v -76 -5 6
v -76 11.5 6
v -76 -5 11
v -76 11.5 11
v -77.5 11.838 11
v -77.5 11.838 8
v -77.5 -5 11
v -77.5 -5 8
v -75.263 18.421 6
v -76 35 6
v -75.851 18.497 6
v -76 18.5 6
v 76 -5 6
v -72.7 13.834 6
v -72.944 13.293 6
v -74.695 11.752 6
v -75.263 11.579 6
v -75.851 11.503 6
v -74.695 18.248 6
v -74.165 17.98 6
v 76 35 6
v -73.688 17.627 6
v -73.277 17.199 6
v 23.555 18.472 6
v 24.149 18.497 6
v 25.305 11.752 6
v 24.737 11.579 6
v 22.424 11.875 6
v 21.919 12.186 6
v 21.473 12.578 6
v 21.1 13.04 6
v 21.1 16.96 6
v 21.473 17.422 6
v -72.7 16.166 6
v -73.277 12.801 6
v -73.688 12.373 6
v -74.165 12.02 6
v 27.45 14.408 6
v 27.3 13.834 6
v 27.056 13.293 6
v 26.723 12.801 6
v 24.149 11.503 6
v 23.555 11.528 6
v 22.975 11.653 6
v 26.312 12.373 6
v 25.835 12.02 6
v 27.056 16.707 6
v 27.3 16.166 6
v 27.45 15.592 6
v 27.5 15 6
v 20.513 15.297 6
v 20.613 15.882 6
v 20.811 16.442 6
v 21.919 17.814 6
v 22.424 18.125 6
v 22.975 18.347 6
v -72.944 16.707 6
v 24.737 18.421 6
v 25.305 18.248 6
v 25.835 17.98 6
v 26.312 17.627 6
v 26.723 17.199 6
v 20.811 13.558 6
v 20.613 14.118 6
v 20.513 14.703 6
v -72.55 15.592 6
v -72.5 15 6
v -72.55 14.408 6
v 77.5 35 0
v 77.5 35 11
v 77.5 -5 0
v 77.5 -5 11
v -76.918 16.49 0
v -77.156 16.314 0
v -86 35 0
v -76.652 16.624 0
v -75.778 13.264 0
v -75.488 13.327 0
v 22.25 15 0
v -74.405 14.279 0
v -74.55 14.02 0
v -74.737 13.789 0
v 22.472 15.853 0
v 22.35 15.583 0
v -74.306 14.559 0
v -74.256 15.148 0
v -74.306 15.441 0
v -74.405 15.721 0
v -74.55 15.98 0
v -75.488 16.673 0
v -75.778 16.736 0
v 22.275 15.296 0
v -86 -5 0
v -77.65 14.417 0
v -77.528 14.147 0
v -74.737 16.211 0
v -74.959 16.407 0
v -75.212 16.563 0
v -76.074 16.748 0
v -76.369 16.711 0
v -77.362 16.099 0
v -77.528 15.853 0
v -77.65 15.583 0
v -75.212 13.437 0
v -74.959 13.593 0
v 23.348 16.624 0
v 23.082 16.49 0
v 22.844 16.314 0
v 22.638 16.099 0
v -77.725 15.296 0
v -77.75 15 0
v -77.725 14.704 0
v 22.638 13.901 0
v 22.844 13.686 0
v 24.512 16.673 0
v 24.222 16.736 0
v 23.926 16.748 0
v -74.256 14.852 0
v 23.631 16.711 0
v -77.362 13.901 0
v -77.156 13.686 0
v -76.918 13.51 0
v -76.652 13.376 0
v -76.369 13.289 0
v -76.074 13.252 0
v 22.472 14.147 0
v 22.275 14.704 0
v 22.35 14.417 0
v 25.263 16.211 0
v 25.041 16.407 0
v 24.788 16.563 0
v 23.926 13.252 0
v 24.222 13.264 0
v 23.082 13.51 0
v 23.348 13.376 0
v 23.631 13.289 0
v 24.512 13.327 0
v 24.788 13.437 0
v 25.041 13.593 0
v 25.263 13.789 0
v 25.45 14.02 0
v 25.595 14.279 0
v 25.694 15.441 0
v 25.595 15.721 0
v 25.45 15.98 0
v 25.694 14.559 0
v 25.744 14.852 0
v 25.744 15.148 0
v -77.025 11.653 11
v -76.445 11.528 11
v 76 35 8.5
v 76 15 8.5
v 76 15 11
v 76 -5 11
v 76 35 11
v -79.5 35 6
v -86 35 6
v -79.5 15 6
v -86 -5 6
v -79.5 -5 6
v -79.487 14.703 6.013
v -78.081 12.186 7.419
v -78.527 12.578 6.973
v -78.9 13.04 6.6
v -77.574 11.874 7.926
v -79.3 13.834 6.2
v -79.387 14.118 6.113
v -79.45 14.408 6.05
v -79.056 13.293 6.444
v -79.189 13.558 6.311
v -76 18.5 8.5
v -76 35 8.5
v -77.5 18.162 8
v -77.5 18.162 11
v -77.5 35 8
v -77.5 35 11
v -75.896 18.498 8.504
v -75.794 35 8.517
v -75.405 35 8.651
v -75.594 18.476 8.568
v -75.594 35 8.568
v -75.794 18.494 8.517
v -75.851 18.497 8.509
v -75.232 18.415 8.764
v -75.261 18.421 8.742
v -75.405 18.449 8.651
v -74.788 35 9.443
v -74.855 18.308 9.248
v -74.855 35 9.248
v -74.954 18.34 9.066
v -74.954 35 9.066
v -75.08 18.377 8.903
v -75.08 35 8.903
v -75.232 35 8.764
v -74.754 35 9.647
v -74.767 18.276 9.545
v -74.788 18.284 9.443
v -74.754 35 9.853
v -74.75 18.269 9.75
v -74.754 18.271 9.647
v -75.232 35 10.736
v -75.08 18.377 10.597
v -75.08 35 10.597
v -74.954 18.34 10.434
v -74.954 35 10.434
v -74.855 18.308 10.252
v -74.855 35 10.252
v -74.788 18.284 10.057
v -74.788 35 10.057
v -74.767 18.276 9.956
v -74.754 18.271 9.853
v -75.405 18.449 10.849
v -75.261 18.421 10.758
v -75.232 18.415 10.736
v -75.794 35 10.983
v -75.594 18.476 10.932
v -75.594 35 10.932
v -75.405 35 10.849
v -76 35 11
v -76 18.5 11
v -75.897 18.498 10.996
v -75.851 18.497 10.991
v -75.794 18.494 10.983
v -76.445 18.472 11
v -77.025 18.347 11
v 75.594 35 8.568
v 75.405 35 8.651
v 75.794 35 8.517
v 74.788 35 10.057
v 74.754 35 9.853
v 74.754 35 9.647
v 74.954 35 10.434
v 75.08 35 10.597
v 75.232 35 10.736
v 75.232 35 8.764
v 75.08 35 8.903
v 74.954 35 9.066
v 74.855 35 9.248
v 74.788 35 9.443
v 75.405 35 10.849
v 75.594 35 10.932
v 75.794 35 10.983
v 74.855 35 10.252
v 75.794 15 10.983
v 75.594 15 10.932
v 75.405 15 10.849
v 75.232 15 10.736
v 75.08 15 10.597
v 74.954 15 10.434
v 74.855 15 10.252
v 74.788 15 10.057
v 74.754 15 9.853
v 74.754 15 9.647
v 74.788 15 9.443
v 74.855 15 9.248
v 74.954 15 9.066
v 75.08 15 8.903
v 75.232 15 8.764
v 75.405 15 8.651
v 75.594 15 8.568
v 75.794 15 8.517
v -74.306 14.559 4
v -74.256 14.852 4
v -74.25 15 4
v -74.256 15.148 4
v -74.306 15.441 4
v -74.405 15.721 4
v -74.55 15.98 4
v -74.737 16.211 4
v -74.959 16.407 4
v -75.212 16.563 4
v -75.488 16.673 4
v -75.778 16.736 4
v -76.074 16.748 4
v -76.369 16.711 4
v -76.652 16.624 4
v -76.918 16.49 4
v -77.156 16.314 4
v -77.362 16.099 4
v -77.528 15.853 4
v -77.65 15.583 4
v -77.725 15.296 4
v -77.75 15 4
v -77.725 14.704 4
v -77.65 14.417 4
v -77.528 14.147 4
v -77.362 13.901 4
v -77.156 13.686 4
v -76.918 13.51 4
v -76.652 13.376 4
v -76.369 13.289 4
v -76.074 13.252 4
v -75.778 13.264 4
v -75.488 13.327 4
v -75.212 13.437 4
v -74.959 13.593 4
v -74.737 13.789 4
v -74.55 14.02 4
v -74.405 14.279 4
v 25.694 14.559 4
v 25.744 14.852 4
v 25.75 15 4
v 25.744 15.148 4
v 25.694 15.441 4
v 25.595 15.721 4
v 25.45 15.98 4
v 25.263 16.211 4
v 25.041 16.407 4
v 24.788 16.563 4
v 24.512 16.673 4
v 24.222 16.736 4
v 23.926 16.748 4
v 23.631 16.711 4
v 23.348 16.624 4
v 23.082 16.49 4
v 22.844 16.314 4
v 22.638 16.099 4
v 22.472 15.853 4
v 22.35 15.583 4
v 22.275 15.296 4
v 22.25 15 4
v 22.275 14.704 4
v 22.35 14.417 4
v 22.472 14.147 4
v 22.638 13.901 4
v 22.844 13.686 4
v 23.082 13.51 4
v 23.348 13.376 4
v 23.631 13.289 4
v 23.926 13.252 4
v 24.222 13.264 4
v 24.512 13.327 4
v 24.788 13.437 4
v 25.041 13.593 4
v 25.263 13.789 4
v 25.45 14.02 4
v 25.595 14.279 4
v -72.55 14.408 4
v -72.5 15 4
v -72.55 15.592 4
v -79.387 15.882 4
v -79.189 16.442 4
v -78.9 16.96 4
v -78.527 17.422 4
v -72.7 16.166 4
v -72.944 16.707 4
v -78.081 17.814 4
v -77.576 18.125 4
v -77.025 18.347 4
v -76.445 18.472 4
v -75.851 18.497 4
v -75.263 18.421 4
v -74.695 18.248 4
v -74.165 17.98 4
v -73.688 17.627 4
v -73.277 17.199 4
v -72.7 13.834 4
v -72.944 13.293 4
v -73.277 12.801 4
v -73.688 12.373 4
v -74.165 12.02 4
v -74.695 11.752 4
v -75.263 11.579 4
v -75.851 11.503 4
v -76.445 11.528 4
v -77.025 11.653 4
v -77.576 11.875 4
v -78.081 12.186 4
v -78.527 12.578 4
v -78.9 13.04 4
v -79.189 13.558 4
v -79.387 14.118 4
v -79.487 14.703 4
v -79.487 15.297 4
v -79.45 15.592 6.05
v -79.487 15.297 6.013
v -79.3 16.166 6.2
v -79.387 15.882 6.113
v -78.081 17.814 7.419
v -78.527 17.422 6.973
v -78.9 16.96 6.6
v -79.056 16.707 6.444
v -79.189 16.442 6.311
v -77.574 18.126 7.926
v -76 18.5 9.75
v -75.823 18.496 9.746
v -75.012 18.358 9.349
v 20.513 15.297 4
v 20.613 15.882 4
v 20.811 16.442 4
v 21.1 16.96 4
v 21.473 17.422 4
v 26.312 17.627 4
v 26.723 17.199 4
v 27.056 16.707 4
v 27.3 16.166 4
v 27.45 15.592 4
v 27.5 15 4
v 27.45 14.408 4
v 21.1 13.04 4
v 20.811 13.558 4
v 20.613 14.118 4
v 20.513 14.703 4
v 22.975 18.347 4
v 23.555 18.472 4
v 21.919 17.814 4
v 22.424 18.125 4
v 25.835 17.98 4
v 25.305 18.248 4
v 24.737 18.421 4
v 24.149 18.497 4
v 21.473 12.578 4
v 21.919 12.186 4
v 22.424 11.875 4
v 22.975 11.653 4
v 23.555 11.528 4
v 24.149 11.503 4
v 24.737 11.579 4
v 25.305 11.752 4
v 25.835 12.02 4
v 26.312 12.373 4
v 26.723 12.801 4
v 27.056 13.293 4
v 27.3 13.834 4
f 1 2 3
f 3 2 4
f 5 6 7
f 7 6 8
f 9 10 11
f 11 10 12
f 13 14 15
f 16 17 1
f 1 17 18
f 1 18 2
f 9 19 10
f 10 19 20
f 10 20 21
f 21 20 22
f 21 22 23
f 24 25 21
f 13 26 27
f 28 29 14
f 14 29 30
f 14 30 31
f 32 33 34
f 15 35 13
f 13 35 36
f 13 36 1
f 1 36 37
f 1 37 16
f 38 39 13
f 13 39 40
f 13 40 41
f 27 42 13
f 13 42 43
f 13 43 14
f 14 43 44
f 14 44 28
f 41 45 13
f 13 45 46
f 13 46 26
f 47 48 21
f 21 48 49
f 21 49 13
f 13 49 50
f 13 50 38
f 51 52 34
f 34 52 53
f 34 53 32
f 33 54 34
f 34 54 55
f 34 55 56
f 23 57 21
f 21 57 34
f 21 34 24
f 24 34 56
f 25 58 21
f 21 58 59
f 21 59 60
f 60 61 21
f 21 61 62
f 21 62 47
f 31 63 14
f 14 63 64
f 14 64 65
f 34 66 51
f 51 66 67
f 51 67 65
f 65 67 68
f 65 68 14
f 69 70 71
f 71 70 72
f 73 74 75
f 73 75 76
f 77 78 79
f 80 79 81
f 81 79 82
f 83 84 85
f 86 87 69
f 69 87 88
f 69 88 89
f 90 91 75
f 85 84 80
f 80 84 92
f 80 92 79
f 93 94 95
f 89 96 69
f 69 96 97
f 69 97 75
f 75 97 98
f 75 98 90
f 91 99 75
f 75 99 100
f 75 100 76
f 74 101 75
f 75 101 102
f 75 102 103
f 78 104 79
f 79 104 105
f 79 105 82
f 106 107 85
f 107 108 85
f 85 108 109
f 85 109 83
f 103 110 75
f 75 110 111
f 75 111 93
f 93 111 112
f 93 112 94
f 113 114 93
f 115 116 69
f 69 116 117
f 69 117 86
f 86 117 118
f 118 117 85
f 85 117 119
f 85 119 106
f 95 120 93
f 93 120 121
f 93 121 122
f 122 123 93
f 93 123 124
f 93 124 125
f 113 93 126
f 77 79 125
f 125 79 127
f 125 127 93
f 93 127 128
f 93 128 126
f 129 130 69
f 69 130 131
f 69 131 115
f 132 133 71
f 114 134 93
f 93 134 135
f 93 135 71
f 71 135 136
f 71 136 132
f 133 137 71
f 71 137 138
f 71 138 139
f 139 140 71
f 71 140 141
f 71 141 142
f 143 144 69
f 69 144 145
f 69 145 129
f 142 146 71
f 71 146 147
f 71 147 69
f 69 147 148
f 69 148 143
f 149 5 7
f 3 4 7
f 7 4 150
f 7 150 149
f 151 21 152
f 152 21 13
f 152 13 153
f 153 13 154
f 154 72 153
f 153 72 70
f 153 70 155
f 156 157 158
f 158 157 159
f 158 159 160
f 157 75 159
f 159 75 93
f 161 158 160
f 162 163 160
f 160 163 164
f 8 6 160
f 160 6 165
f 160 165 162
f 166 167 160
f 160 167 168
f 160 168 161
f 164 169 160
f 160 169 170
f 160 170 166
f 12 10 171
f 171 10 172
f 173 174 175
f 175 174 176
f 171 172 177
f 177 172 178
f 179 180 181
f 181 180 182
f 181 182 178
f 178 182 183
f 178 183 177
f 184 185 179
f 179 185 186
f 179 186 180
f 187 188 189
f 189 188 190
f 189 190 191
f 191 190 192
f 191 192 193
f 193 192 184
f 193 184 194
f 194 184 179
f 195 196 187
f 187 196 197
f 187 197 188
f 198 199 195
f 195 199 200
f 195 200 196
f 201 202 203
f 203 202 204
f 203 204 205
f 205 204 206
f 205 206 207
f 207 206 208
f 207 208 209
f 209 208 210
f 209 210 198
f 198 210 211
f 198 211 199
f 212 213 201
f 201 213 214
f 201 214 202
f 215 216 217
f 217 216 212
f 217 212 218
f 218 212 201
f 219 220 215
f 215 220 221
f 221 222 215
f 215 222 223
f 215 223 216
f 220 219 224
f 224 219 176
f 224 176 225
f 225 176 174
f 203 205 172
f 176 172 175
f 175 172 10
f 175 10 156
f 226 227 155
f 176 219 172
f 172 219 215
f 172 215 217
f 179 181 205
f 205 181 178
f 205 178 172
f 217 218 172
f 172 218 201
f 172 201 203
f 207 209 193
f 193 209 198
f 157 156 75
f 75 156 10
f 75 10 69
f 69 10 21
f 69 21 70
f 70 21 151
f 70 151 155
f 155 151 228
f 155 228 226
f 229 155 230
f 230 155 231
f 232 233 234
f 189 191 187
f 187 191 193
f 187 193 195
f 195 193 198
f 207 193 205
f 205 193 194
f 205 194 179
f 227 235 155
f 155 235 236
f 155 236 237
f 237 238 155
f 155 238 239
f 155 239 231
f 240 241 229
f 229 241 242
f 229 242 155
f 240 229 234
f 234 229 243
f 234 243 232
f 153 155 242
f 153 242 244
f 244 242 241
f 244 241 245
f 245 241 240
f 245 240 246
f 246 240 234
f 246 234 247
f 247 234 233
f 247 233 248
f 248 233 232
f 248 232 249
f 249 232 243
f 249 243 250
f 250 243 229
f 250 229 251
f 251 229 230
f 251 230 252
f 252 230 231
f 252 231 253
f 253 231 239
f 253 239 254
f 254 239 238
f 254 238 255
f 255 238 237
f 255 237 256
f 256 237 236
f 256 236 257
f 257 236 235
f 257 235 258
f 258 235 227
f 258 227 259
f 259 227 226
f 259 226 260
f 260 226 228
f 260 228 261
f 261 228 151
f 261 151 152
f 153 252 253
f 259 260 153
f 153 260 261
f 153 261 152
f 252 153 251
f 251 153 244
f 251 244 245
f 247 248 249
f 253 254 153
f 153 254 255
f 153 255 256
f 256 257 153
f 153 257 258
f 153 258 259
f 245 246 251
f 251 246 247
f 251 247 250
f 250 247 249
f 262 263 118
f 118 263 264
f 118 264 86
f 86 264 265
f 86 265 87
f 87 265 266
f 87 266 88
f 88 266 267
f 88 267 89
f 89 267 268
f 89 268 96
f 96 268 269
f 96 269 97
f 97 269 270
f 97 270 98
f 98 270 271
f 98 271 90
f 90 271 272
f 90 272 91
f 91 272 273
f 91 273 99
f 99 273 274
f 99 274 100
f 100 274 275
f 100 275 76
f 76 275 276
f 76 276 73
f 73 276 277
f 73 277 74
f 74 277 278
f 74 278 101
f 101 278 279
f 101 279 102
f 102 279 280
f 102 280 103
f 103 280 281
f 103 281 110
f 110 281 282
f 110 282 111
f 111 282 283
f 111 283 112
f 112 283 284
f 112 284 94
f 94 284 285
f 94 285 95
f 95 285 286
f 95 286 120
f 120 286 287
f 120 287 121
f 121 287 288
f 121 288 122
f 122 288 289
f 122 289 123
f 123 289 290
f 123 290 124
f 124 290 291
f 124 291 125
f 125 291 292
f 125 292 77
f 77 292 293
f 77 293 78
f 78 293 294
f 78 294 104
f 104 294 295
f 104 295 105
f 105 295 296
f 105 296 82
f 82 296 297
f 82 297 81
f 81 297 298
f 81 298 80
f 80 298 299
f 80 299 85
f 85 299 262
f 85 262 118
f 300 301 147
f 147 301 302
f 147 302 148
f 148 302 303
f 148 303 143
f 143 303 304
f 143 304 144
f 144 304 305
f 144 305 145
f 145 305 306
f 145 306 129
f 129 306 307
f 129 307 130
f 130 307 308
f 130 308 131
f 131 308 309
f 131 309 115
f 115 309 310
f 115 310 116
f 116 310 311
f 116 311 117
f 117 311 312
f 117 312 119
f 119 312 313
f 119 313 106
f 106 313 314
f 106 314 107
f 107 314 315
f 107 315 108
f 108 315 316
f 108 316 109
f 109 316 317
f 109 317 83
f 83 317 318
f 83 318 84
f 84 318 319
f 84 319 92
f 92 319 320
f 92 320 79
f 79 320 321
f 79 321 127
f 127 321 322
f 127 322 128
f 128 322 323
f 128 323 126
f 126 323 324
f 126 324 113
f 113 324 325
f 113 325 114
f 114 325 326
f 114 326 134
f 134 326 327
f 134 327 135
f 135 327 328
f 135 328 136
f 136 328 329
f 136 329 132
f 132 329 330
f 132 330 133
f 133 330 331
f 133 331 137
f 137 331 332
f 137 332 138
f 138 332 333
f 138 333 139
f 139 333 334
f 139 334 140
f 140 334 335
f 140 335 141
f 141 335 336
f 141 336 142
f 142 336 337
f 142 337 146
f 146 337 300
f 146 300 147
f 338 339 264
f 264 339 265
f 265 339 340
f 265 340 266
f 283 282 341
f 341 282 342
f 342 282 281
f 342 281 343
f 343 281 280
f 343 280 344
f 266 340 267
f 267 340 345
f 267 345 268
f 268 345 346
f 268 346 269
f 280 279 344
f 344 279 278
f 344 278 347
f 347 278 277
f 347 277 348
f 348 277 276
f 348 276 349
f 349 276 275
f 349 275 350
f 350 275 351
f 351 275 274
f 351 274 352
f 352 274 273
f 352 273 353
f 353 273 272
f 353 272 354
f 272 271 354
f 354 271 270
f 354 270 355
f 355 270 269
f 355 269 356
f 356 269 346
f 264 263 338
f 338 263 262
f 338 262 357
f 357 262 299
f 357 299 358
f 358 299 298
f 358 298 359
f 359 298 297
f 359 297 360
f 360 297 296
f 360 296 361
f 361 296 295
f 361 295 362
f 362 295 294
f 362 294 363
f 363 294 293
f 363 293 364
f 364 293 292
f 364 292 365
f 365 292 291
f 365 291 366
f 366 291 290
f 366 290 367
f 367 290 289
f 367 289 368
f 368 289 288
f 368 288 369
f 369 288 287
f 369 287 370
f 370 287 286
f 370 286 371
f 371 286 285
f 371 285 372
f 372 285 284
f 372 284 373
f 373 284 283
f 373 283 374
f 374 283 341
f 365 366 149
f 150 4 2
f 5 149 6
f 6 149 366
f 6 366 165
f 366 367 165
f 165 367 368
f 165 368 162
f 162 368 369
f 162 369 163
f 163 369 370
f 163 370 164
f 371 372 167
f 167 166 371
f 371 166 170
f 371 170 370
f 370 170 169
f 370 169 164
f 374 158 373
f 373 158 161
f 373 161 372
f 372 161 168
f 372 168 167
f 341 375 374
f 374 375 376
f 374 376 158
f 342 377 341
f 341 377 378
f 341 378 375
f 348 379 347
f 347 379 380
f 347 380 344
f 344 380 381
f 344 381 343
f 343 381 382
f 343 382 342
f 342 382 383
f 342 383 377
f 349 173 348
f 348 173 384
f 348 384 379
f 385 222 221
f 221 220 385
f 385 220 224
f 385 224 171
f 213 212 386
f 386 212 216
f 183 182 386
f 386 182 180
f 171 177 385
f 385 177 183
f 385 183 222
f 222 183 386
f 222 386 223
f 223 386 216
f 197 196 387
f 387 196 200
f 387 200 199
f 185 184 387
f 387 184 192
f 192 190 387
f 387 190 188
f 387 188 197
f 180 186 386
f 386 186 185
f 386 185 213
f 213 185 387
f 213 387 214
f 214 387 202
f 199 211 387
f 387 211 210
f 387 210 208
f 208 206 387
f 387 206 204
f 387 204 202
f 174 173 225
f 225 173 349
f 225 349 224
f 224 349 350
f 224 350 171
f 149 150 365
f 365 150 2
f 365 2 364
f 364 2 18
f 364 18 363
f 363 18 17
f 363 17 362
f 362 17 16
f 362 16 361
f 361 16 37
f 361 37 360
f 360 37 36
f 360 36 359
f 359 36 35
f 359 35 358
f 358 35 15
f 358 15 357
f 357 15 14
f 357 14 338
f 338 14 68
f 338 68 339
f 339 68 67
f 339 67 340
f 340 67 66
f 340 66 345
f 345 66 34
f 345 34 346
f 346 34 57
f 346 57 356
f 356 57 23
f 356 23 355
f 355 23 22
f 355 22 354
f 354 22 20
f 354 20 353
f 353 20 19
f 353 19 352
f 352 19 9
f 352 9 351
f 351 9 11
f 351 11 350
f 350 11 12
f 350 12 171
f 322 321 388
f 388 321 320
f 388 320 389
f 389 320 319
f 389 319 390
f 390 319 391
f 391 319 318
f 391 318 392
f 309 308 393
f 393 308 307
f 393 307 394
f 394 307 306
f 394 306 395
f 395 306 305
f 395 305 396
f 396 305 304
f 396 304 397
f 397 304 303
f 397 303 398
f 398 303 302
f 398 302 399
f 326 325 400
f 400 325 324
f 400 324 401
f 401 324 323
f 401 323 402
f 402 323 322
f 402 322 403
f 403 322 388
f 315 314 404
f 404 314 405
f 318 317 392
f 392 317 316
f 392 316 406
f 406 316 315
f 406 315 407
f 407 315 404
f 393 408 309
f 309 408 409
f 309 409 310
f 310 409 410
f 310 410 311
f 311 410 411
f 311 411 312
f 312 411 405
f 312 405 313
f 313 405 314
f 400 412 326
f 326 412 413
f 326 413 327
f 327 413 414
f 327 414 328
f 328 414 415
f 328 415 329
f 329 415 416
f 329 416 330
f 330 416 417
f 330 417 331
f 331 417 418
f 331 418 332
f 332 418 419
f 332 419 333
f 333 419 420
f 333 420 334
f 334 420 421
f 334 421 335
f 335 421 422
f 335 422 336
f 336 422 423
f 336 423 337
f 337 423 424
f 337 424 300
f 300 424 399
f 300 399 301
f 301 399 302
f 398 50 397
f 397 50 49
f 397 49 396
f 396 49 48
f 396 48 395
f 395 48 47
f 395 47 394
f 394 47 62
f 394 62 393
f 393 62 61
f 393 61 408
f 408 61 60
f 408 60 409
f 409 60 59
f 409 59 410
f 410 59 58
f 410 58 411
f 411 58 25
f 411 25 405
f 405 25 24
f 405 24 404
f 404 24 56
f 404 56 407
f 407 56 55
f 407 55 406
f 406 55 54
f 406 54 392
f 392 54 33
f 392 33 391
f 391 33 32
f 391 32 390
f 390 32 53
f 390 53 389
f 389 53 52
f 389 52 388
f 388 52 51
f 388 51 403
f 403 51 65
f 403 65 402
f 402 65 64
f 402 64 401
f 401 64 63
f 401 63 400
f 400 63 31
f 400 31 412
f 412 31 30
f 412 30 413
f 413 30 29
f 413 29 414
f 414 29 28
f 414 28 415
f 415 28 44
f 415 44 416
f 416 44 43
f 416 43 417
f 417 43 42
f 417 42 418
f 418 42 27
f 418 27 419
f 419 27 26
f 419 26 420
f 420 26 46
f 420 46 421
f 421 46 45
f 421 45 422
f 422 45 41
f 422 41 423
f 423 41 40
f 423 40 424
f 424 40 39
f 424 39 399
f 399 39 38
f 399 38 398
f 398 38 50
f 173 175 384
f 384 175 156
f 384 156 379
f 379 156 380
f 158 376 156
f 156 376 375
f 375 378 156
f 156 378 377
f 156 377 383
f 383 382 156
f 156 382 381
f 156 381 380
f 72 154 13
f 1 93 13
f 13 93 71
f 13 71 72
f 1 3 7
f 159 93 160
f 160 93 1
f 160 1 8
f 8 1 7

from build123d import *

# Parameters (mm, degrees)
SCHIZZO1_W                   = 155
SCHIZZO1_H                   = 70
ESTRUSIONE_ESTRUSIONE1_DEPTH = 6
ESTRUSIONE_ESTRUSIONE3_DEPTH = 5
ESTRUSIONE_ESTRUSIONE4_DEPTH = 20
SCHIZZO6_W                   = 8.5
SCHIZZO6_H                   = 70
ESTRUSIONE_ESTRUSIONE5_DEPTH = 6
SCHIZZO7_R                   = 1.75
TAGLIO_ESTRUSIONE2_DEPTH     = 94.498663092
FORO1_AT_2_COUNT             = 2
FORO1_AT_2_PITCH             = 100
SCHIZZO9_R                   = 3.5
TAGLIO_ESTRUSIONE3_DEPTH     = 94.112834821
SMUSSO1_SIZE                 = 2
TAGLIO_ESTRUSIONE4_DEPTH     = 30


with BuildPart() as part:
    # Schizzo1 → Estrusione-Estrusione1 (new body)
    with BuildSketch(Plane.XY):
        Rectangle(SCHIZZO1_W, SCHIZZO1_H)
    extrude(amount=ESTRUSIONE_ESTRUSIONE1_DEPTH)

    # Schizzo3 → Estrusione-Estrusione3 (add)
    with BuildSketch(Plane.XY.offset(6)):
        Polygon((-76, -33.5), (-76, 35), (-77.5, 35), (-77.5, -35), (-76, -35), align=None)
        Polygon((77.5, 35), (76, 35), (76, -33.5), (76, -35), (77.5, -35), align=None)
    extrude(amount=ESTRUSIONE_ESTRUSIONE3_DEPTH)

    # Schizzo4 → Estrusione-Estrusione4 (add)
    with BuildSketch(Plane(origin=(0, 35, 0), x_dir=(1, 0, 0), z_dir=(0, 1, 0))):
        with BuildLine():
            ThreePointArc((76, -8.5), (74.75, -9.75), (76, -11))
            Line((76, -11), (76, -8.5))
        make_face()
    estrusione_estrusione4 = extrude(amount=-ESTRUSIONE_ESTRUSIONE4_DEPTH)

    # Specchia1: Estrusione-Estrusione4 across plane
    add(estrusione_estrusione4.mirror(Plane(origin=(0, 0, 0), x_dir=(0, 0, 1), z_dir=(1, 0, 0))))

    # Schizzo6 → Estrusione-Estrusione5 (add)
    with BuildSketch(Plane.XY):
        with Locations((-81.75, 0)):
            Rectangle(SCHIZZO6_W, SCHIZZO6_H)
    extrude(amount=ESTRUSIONE_ESTRUSIONE5_DEPTH)

    # Schizzo7 → Taglio-Estrusione2 (cut, through all)
    with BuildSketch(Plane(origin=(0, 0, 0), x_dir=(-1, 0, 0), z_dir=(0, 0, -1))):
        with Locations((-24, 15)):
            Circle(SCHIZZO7_R)
        with Locations((76, 15)):
            Circle(SCHIZZO7_R)
    extrude(amount=-TAGLIO_ESTRUSIONE2_DEPTH, mode=Mode.SUBTRACT)

    # Schizzo8 → Foro1 (revolve, cut)
    with BuildSketch(Plane(origin=(24, 15, 6), x_dir=(0, -1, 0), z_dir=(1, 0, 0))):
        Polygon((0, 0), (0, 7.051506083), (1.75, 6), (1.75, 2), (3.5, 2), (3.5, 0), align=None)
    foro1 = revolve(axis=Axis((24, 15, 17.310875039), (0, 0, -1)), mode=Mode.SUBTRACT)

    # Foro1 at 2: Foro1 ×2
    with Locations(*[(-i * FORO1_AT_2_PITCH, 0, 0) for i in range(1, FORO1_AT_2_COUNT)]):
        add(foro1, mode=Mode.SUBTRACT)

    # Schizzo9 → Taglio-Estrusione3 (cut, through all)
    with BuildSketch(Plane.XY.offset(4)):
        with Locations((-76, 15)):
            Circle(SCHIZZO9_R)
    extrude(amount=TAGLIO_ESTRUSIONE3_DEPTH, mode=Mode.SUBTRACT)

    # Smusso1
    # the kernel refuses this chamfer: 2 mm, written as the material it adds along each edge
    with BuildSketch(Plane(origin=(-77.5, 13.018911684, 6), x_dir=(-0.9996219169112968, 0, -0.027495876610586414), z_dir=(0, 1, 0))) as smusso1_piece_1_section:
        Polygon((SMUSSO1_SIZE * 0.999621916911, SMUSSO1_SIZE * 0.0274958766106), (-SMUSSO1_SIZE * 0.0274958766106, SMUSSO1_SIZE * 0.999621916911), (0, 0), align=None)
    smusso1_piece_1 = extrude(amount=21.981088316, mode=Mode.PRIVATE)
    smusso1_piece_1 = smusso1_piece_1 - Plane(origin=(-76, 15, 6.650360418), x_dir=(0, -1, 0), z_dir=(0, 0, 1)) * Cylinder(3.5, 52, mode=Mode.PRIVATE)
    add(smusso1_piece_1)
    with BuildSketch(Plane(origin=(-77.5, -35, 6), x_dir=(0.02749587661058907, 0, 0.9996219169112965), z_dir=(0, 1, 0))) as smusso1_piece_2_section:
        Polygon((SMUSSO1_SIZE * 0.999621916911, -SMUSSO1_SIZE * 0.0274958766106), (-SMUSSO1_SIZE * 0.0274958766106, -SMUSSO1_SIZE * 0.999621916911), (0, 0), align=None)
    smusso1_piece_2 = extrude(amount=51.981088316, mode=Mode.PRIVATE)
    smusso1_piece_2 = smusso1_piece_2 - Plane(origin=(-76, 15, 6.656201353), x_dir=(1, 0, 0), z_dir=(0, 0, -1)) * Cylinder(3.5, 112, mode=Mode.PRIVATE)
    add(smusso1_piece_2)

    # Schizzo10 → Taglio-Estrusione4 (cut)
    with BuildSketch(Plane.XZ.offset(35)):
        Polygon((76, 11), (76, 6), (-76, 6), (-76, 11), (-77.5, 11), (-77.5, 8), (-79.5, 6), (-86, 6), (-86, 0), (77.5, 0), (77.5, 11), align=None)
    extrude(amount=-TAGLIO_ESTRUSIONE4_DEPTH, mode=Mode.SUBTRACT)


solid = part.part
